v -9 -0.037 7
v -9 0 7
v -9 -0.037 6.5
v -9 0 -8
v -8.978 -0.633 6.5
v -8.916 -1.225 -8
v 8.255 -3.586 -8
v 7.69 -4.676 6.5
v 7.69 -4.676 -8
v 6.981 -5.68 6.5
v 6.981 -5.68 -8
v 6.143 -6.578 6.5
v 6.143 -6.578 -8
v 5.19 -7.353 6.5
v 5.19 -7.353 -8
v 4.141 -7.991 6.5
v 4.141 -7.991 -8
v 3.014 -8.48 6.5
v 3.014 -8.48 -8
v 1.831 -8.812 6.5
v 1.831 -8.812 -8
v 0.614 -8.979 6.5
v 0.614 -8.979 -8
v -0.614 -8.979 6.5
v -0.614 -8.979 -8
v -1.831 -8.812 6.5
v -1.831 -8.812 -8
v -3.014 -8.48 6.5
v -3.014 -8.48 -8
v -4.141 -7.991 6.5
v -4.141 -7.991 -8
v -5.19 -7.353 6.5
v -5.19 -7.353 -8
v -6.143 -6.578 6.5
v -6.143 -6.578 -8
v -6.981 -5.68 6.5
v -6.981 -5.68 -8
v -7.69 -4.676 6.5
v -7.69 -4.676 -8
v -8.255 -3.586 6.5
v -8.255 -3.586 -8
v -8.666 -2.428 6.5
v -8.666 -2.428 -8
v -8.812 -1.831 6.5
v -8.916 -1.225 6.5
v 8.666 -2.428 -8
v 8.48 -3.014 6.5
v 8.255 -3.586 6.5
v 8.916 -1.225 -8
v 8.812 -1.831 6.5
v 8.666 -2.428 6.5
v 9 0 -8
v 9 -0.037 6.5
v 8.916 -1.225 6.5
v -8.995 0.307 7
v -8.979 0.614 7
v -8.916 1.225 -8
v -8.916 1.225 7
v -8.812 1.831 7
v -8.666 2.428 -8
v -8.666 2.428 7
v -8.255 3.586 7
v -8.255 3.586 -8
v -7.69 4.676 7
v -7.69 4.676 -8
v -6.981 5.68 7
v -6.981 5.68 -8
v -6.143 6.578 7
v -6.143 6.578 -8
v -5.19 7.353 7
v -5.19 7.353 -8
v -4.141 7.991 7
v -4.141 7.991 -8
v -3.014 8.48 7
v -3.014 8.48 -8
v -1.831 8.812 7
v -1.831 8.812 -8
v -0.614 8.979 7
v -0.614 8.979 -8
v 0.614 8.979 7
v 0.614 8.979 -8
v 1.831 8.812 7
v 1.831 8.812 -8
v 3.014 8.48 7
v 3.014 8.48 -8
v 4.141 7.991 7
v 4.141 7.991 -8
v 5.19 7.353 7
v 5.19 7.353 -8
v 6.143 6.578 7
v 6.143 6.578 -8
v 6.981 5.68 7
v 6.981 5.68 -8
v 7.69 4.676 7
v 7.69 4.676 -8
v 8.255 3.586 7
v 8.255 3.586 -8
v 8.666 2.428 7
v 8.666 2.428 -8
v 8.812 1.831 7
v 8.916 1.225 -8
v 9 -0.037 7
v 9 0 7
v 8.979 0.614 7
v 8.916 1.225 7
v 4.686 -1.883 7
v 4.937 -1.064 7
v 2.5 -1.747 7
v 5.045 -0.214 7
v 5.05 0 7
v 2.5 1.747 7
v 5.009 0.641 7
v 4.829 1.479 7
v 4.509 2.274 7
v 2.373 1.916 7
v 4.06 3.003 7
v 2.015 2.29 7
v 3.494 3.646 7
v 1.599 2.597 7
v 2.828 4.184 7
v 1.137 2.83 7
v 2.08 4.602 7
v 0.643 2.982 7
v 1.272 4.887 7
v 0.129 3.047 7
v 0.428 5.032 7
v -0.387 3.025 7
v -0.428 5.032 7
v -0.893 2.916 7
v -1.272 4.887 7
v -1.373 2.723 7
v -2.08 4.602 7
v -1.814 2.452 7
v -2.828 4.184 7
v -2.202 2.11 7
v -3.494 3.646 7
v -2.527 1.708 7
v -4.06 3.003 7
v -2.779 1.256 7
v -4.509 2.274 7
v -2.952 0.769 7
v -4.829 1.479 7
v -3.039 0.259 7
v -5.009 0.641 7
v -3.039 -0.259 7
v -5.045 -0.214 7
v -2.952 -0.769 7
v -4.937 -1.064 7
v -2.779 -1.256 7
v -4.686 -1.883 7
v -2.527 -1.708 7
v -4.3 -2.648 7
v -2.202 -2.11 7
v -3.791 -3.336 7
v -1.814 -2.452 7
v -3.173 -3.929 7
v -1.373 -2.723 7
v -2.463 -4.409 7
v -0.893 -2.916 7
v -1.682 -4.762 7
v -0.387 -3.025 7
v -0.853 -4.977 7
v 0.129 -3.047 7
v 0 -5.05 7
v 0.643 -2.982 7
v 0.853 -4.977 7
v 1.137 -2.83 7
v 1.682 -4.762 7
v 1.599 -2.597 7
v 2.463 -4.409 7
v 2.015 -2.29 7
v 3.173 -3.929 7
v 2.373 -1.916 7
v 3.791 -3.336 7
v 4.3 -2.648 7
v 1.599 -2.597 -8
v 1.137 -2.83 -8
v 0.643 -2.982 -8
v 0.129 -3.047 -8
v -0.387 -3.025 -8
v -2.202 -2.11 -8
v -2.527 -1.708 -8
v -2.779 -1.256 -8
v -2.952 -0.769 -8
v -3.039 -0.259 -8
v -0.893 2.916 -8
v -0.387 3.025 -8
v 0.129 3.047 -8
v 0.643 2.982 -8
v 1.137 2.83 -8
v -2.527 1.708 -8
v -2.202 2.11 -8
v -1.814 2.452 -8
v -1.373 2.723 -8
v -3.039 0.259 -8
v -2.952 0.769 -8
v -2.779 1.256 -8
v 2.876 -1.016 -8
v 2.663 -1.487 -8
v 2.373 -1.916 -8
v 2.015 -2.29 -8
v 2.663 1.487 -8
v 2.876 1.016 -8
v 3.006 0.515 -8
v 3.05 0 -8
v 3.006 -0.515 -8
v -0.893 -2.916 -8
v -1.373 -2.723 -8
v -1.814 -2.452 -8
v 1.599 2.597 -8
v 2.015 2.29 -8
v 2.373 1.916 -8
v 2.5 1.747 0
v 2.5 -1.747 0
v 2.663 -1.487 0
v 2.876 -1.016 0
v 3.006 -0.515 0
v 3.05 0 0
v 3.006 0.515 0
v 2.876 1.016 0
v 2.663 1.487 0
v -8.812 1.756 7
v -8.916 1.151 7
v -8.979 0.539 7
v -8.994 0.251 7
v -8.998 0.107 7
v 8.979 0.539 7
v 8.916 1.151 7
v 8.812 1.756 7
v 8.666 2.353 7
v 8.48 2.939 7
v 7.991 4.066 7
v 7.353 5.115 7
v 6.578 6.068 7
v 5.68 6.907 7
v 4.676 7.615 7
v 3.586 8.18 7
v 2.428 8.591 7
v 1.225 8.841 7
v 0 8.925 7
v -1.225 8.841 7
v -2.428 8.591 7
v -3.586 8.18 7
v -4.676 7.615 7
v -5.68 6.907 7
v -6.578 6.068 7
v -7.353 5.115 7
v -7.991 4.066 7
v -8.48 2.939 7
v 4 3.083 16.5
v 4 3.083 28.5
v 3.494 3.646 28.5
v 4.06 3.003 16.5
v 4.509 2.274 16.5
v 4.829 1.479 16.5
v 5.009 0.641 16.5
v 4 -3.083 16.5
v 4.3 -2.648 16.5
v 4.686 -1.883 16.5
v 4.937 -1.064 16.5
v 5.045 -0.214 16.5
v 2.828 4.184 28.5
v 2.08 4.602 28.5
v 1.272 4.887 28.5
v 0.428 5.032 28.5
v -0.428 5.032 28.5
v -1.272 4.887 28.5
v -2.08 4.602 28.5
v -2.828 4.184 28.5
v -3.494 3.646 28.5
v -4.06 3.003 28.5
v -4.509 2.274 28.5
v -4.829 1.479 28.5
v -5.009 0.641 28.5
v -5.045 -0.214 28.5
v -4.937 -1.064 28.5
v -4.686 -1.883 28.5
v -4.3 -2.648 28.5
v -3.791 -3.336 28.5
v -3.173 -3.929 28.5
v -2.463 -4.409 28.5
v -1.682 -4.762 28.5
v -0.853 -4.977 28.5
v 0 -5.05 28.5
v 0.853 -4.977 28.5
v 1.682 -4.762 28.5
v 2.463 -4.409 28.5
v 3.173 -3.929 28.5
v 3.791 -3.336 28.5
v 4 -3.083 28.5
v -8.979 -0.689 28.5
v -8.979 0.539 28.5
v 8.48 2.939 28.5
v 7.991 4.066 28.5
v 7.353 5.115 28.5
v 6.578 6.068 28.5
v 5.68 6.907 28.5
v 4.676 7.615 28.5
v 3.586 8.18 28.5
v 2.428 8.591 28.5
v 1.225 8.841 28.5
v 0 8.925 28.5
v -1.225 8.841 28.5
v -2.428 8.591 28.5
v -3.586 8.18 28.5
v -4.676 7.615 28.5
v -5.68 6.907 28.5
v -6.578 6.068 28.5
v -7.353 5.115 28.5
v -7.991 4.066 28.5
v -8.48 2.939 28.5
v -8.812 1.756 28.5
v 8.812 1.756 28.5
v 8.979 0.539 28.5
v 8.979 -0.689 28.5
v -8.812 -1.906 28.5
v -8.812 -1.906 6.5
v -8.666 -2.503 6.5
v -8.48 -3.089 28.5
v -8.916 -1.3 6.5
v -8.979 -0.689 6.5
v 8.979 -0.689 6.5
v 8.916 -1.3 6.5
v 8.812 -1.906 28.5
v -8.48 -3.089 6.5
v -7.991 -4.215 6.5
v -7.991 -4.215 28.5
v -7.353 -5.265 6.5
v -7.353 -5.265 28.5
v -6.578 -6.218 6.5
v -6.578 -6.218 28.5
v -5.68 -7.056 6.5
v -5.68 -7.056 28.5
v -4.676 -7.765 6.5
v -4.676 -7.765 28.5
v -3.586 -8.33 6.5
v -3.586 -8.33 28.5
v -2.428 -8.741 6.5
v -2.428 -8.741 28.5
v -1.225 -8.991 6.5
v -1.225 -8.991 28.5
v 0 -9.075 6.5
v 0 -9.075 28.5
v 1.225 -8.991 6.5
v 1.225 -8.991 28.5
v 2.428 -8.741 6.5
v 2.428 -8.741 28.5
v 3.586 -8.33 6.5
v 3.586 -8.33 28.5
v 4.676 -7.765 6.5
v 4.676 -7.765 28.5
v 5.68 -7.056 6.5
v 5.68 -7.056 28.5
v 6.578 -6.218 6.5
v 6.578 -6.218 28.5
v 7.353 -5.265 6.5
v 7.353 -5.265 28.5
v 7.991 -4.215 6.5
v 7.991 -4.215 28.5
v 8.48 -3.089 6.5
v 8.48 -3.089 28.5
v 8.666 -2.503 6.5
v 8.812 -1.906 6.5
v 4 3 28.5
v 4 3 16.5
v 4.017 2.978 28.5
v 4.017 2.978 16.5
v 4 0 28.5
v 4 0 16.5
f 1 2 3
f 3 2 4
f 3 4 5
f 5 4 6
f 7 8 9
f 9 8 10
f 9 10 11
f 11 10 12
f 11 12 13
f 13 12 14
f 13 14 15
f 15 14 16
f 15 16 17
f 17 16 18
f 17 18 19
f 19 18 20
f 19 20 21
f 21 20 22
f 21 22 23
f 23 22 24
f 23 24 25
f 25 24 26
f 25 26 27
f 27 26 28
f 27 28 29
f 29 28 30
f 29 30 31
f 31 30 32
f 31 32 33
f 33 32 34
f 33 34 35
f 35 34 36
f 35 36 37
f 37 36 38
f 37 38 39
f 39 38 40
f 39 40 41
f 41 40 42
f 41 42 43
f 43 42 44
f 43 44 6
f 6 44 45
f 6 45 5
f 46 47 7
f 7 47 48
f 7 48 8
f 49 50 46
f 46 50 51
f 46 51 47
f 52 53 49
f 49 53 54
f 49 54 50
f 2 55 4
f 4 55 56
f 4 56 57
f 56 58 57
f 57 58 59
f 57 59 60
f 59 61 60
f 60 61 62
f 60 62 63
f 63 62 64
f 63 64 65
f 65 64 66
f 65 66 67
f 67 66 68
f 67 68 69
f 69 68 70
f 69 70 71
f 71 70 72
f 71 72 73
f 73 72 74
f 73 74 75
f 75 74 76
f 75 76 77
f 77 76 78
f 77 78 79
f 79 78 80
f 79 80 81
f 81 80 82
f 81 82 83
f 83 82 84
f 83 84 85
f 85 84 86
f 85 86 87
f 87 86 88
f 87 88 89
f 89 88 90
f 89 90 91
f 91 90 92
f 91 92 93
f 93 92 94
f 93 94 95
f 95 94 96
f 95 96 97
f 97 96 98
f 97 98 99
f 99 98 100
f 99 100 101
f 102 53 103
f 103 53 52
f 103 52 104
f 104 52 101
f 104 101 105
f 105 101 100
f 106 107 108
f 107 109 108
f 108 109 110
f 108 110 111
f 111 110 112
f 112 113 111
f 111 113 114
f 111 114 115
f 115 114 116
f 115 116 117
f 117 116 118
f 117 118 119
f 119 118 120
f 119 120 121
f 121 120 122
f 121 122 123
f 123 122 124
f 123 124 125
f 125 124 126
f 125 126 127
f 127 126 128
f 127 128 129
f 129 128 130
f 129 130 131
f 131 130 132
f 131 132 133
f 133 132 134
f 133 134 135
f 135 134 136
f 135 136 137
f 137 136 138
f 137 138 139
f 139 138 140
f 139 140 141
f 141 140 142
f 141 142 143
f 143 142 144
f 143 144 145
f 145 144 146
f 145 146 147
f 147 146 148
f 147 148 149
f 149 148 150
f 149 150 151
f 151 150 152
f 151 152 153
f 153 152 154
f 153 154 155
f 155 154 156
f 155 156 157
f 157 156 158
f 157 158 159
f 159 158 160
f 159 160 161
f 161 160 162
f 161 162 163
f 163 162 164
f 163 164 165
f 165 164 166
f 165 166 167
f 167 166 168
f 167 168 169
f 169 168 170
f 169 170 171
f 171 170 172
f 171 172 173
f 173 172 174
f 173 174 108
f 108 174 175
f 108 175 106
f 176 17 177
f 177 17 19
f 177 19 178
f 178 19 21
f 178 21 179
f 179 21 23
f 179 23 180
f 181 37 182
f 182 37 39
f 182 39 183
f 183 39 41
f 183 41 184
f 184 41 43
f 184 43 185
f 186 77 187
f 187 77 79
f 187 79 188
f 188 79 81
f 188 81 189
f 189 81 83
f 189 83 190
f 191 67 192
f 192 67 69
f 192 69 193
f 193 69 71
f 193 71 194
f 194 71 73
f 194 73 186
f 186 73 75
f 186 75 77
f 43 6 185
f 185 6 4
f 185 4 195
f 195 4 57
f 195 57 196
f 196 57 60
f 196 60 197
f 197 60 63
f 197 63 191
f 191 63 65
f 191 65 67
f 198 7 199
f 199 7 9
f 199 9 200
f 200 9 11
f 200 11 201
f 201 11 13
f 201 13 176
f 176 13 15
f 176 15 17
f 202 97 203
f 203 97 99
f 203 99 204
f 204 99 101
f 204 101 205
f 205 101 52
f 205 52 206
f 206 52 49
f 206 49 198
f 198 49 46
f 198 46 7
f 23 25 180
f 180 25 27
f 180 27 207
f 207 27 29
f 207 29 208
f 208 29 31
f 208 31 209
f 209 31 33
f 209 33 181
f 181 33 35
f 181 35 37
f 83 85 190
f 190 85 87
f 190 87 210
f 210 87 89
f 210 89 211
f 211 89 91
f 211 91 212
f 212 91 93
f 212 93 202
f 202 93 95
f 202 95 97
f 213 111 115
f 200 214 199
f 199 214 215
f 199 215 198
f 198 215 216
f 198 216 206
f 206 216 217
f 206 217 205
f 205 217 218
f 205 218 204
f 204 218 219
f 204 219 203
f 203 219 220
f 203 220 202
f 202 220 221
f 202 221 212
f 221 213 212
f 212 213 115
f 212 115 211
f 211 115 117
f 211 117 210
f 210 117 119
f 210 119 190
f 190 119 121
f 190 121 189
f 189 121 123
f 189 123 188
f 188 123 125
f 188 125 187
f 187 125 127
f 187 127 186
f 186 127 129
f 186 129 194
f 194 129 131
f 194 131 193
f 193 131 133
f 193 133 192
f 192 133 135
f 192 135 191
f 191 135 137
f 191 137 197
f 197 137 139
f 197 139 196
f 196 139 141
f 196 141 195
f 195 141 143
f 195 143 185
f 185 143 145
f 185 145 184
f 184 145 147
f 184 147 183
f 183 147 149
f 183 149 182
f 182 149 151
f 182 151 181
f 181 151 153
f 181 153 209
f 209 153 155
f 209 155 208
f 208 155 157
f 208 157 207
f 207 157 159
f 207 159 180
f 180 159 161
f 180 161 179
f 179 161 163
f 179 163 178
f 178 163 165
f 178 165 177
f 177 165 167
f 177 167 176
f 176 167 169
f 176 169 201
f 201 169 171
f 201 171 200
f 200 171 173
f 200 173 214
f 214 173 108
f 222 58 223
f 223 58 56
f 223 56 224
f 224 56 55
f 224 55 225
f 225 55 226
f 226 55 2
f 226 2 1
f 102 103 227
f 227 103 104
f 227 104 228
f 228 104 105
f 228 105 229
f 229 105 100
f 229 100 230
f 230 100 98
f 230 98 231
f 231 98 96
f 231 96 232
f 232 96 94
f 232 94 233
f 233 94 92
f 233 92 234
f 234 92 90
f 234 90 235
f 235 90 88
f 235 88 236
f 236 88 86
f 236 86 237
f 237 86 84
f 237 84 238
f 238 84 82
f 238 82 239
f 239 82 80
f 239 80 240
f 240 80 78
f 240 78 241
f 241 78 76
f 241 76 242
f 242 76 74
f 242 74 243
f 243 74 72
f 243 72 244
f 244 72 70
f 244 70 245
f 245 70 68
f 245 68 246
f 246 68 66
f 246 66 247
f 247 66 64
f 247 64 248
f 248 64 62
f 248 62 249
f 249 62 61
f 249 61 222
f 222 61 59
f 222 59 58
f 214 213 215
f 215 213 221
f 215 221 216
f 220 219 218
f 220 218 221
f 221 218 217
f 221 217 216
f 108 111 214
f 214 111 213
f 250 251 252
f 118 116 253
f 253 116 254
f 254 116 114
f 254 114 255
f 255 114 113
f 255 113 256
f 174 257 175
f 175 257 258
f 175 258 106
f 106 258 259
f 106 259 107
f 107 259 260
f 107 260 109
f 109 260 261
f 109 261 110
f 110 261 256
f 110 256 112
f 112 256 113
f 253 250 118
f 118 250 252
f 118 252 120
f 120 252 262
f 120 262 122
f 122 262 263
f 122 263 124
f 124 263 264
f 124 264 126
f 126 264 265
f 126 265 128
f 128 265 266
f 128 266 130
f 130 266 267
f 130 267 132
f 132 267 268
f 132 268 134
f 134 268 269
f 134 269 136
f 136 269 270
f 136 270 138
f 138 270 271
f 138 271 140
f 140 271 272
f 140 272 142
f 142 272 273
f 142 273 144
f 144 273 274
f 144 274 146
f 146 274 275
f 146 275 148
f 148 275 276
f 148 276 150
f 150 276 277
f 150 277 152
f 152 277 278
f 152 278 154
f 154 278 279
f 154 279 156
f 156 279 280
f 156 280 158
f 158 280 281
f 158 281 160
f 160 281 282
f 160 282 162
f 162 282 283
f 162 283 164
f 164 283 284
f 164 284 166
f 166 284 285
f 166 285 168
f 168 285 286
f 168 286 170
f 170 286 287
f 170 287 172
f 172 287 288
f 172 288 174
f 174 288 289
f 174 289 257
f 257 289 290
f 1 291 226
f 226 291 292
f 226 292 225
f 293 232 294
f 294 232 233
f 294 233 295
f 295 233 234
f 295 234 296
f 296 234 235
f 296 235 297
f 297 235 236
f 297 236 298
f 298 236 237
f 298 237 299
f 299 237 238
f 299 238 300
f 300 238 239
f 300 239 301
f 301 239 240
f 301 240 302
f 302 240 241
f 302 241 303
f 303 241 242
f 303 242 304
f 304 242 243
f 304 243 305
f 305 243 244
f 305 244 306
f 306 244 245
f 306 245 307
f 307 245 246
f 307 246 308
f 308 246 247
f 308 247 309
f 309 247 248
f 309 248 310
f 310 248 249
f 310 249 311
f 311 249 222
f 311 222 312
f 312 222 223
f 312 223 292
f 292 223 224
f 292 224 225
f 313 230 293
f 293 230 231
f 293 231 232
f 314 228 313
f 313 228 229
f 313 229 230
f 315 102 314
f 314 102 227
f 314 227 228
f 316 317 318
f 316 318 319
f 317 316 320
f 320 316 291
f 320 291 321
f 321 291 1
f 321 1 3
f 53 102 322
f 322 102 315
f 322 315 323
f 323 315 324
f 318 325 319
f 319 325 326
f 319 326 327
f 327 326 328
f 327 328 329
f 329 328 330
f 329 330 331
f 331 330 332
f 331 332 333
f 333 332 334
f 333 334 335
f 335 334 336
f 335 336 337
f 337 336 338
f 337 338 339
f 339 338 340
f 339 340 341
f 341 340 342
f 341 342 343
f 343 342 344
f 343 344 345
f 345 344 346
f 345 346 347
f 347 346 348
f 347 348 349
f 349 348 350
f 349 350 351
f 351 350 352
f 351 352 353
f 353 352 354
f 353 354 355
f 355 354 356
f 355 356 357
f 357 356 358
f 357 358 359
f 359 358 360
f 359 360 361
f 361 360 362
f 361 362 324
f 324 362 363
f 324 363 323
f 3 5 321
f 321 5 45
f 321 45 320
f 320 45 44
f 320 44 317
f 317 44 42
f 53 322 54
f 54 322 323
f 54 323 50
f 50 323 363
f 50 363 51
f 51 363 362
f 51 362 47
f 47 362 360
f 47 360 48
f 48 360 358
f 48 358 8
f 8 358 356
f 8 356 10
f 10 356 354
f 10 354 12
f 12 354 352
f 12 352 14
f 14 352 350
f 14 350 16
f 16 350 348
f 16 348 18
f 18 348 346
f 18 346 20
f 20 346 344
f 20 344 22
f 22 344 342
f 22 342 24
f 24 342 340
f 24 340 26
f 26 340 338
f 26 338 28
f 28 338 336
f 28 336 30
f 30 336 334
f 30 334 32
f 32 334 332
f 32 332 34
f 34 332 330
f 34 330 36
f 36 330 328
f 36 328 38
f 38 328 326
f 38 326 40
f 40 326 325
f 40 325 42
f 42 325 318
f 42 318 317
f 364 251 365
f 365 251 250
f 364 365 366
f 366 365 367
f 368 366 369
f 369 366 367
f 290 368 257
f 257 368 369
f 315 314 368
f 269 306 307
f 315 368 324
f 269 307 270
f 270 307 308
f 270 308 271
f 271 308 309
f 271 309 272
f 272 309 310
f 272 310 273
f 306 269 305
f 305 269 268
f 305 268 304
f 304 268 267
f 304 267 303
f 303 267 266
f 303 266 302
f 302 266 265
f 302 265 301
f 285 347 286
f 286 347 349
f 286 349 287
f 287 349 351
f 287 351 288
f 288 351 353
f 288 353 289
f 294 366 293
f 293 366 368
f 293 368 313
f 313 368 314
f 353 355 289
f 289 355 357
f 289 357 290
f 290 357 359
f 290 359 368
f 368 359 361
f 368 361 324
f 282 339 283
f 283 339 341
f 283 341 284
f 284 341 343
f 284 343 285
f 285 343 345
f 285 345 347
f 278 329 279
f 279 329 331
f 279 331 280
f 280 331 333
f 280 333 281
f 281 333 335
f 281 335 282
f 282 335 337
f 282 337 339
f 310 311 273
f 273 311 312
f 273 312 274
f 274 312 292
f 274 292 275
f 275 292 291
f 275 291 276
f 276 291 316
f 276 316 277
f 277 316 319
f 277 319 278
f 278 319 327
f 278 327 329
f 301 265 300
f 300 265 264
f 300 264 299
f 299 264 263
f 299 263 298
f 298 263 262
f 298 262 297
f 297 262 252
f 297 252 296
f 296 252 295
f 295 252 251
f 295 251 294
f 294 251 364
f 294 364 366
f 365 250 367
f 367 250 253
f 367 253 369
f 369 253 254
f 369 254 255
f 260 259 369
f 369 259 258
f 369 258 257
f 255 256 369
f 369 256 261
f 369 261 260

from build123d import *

# Parameters (mm, degrees)
SKETCH1_R           = 9
SKETCH1_R_2         = 3.05
BOSS_EXTRUDE1_DEPTH = 8
BOSS_EXTRUDE2_START = 7
SKETCH1_3_R         = 9
BOSS_EXTRUDE2_DEPTH = 7
SKETCH3_R           = 9
BOSS_EXTRUDE3_DEPTH = 12
SKETCH3_3_R         = 9
BOSS_EXTRUDE4_DEPTH = 10


with BuildPart() as part:
    # Sketch1 → Boss-Extrude1 (new body)
    with BuildSketch(Plane.XY):
        Circle(SKETCH1_R)
        Circle(SKETCH1_R_2, mode=Mode.SUBTRACT)
    extrude(amount=-BOSS_EXTRUDE1_DEPTH)

    # Sketch1<3> → Boss-Extrude2 (add)
    with BuildSketch(Plane.XY.offset(BOSS_EXTRUDE2_START)):
        Circle(SKETCH1_3_R)
        with BuildLine():
            Line((2.5, 1.747140521), (2.5, -1.747140521))
            ThreePointArc((2.5, -1.747140521), (-3.05, 0), (2.5, 1.747140521))
        make_face(mode=Mode.SUBTRACT)
    extrude(amount=-BOSS_EXTRUDE2_DEPTH)



with BuildPart() as body_2:
    # Sketch3 → Boss-Extrude3 (new body)
    with BuildSketch(Plane(origin=(0, 0, 16.5), x_dir=(-1, 0, 0), z_dir=(0, 0, -1))):
        with Locations((0, -0.074857464)):
            Circle(SKETCH3_R)
        with BuildLine():
            Line((-4.000061363, 2.999918181), (-4.000061363, 3.082532902))
            ThreePointArc((-4.000061363, 3.082532902), (5.05, 0), (-4.000061363, -3.082532902))
            Line((-4.000061363, -3.082532902), (-4.000061363, 0))
            Line((-4.000061363, 0), (-4.016547732, 2.977808644))
            ThreePointArc((-4.016547732, 2.977808644), (-4.008319792, 2.98887478), (-4.000061363, 2.999918181))
        make_face(mode=Mode.SUBTRACT)
    extrude(amount=-BOSS_EXTRUDE3_DEPTH)


with BuildPart() as part_1:
    add(part.part)

    add(body_2.part)  # Boss-Extrude4 merges body 2
    # Sketch3<3> → Boss-Extrude4 (add)
    with BuildSketch(Plane(origin=(0, 0, 16.5), x_dir=(-1, 0, 0), z_dir=(0, 0, -1))):
        with Locations((0, -0.074857464)):
            Circle(SKETCH3_3_R)
        with BuildLine():
            ThreePointArc((5.05, 0), (1.62821837, -4.780314314), (-4.000061363, -3.082532902))
            ThreePointArc((-4.000061363, -3.082532902), (-5.05, 0), (-4.000061363, 3.082532902))
            ThreePointArc((-4.000061363, 3.082532902), (1.62821837, 4.780314314), (5.05, 0))
        make_face(mode=Mode.SUBTRACT)
    extrude(amount=BOSS_EXTRUDE4_DEPTH)


solid = part_1.part
